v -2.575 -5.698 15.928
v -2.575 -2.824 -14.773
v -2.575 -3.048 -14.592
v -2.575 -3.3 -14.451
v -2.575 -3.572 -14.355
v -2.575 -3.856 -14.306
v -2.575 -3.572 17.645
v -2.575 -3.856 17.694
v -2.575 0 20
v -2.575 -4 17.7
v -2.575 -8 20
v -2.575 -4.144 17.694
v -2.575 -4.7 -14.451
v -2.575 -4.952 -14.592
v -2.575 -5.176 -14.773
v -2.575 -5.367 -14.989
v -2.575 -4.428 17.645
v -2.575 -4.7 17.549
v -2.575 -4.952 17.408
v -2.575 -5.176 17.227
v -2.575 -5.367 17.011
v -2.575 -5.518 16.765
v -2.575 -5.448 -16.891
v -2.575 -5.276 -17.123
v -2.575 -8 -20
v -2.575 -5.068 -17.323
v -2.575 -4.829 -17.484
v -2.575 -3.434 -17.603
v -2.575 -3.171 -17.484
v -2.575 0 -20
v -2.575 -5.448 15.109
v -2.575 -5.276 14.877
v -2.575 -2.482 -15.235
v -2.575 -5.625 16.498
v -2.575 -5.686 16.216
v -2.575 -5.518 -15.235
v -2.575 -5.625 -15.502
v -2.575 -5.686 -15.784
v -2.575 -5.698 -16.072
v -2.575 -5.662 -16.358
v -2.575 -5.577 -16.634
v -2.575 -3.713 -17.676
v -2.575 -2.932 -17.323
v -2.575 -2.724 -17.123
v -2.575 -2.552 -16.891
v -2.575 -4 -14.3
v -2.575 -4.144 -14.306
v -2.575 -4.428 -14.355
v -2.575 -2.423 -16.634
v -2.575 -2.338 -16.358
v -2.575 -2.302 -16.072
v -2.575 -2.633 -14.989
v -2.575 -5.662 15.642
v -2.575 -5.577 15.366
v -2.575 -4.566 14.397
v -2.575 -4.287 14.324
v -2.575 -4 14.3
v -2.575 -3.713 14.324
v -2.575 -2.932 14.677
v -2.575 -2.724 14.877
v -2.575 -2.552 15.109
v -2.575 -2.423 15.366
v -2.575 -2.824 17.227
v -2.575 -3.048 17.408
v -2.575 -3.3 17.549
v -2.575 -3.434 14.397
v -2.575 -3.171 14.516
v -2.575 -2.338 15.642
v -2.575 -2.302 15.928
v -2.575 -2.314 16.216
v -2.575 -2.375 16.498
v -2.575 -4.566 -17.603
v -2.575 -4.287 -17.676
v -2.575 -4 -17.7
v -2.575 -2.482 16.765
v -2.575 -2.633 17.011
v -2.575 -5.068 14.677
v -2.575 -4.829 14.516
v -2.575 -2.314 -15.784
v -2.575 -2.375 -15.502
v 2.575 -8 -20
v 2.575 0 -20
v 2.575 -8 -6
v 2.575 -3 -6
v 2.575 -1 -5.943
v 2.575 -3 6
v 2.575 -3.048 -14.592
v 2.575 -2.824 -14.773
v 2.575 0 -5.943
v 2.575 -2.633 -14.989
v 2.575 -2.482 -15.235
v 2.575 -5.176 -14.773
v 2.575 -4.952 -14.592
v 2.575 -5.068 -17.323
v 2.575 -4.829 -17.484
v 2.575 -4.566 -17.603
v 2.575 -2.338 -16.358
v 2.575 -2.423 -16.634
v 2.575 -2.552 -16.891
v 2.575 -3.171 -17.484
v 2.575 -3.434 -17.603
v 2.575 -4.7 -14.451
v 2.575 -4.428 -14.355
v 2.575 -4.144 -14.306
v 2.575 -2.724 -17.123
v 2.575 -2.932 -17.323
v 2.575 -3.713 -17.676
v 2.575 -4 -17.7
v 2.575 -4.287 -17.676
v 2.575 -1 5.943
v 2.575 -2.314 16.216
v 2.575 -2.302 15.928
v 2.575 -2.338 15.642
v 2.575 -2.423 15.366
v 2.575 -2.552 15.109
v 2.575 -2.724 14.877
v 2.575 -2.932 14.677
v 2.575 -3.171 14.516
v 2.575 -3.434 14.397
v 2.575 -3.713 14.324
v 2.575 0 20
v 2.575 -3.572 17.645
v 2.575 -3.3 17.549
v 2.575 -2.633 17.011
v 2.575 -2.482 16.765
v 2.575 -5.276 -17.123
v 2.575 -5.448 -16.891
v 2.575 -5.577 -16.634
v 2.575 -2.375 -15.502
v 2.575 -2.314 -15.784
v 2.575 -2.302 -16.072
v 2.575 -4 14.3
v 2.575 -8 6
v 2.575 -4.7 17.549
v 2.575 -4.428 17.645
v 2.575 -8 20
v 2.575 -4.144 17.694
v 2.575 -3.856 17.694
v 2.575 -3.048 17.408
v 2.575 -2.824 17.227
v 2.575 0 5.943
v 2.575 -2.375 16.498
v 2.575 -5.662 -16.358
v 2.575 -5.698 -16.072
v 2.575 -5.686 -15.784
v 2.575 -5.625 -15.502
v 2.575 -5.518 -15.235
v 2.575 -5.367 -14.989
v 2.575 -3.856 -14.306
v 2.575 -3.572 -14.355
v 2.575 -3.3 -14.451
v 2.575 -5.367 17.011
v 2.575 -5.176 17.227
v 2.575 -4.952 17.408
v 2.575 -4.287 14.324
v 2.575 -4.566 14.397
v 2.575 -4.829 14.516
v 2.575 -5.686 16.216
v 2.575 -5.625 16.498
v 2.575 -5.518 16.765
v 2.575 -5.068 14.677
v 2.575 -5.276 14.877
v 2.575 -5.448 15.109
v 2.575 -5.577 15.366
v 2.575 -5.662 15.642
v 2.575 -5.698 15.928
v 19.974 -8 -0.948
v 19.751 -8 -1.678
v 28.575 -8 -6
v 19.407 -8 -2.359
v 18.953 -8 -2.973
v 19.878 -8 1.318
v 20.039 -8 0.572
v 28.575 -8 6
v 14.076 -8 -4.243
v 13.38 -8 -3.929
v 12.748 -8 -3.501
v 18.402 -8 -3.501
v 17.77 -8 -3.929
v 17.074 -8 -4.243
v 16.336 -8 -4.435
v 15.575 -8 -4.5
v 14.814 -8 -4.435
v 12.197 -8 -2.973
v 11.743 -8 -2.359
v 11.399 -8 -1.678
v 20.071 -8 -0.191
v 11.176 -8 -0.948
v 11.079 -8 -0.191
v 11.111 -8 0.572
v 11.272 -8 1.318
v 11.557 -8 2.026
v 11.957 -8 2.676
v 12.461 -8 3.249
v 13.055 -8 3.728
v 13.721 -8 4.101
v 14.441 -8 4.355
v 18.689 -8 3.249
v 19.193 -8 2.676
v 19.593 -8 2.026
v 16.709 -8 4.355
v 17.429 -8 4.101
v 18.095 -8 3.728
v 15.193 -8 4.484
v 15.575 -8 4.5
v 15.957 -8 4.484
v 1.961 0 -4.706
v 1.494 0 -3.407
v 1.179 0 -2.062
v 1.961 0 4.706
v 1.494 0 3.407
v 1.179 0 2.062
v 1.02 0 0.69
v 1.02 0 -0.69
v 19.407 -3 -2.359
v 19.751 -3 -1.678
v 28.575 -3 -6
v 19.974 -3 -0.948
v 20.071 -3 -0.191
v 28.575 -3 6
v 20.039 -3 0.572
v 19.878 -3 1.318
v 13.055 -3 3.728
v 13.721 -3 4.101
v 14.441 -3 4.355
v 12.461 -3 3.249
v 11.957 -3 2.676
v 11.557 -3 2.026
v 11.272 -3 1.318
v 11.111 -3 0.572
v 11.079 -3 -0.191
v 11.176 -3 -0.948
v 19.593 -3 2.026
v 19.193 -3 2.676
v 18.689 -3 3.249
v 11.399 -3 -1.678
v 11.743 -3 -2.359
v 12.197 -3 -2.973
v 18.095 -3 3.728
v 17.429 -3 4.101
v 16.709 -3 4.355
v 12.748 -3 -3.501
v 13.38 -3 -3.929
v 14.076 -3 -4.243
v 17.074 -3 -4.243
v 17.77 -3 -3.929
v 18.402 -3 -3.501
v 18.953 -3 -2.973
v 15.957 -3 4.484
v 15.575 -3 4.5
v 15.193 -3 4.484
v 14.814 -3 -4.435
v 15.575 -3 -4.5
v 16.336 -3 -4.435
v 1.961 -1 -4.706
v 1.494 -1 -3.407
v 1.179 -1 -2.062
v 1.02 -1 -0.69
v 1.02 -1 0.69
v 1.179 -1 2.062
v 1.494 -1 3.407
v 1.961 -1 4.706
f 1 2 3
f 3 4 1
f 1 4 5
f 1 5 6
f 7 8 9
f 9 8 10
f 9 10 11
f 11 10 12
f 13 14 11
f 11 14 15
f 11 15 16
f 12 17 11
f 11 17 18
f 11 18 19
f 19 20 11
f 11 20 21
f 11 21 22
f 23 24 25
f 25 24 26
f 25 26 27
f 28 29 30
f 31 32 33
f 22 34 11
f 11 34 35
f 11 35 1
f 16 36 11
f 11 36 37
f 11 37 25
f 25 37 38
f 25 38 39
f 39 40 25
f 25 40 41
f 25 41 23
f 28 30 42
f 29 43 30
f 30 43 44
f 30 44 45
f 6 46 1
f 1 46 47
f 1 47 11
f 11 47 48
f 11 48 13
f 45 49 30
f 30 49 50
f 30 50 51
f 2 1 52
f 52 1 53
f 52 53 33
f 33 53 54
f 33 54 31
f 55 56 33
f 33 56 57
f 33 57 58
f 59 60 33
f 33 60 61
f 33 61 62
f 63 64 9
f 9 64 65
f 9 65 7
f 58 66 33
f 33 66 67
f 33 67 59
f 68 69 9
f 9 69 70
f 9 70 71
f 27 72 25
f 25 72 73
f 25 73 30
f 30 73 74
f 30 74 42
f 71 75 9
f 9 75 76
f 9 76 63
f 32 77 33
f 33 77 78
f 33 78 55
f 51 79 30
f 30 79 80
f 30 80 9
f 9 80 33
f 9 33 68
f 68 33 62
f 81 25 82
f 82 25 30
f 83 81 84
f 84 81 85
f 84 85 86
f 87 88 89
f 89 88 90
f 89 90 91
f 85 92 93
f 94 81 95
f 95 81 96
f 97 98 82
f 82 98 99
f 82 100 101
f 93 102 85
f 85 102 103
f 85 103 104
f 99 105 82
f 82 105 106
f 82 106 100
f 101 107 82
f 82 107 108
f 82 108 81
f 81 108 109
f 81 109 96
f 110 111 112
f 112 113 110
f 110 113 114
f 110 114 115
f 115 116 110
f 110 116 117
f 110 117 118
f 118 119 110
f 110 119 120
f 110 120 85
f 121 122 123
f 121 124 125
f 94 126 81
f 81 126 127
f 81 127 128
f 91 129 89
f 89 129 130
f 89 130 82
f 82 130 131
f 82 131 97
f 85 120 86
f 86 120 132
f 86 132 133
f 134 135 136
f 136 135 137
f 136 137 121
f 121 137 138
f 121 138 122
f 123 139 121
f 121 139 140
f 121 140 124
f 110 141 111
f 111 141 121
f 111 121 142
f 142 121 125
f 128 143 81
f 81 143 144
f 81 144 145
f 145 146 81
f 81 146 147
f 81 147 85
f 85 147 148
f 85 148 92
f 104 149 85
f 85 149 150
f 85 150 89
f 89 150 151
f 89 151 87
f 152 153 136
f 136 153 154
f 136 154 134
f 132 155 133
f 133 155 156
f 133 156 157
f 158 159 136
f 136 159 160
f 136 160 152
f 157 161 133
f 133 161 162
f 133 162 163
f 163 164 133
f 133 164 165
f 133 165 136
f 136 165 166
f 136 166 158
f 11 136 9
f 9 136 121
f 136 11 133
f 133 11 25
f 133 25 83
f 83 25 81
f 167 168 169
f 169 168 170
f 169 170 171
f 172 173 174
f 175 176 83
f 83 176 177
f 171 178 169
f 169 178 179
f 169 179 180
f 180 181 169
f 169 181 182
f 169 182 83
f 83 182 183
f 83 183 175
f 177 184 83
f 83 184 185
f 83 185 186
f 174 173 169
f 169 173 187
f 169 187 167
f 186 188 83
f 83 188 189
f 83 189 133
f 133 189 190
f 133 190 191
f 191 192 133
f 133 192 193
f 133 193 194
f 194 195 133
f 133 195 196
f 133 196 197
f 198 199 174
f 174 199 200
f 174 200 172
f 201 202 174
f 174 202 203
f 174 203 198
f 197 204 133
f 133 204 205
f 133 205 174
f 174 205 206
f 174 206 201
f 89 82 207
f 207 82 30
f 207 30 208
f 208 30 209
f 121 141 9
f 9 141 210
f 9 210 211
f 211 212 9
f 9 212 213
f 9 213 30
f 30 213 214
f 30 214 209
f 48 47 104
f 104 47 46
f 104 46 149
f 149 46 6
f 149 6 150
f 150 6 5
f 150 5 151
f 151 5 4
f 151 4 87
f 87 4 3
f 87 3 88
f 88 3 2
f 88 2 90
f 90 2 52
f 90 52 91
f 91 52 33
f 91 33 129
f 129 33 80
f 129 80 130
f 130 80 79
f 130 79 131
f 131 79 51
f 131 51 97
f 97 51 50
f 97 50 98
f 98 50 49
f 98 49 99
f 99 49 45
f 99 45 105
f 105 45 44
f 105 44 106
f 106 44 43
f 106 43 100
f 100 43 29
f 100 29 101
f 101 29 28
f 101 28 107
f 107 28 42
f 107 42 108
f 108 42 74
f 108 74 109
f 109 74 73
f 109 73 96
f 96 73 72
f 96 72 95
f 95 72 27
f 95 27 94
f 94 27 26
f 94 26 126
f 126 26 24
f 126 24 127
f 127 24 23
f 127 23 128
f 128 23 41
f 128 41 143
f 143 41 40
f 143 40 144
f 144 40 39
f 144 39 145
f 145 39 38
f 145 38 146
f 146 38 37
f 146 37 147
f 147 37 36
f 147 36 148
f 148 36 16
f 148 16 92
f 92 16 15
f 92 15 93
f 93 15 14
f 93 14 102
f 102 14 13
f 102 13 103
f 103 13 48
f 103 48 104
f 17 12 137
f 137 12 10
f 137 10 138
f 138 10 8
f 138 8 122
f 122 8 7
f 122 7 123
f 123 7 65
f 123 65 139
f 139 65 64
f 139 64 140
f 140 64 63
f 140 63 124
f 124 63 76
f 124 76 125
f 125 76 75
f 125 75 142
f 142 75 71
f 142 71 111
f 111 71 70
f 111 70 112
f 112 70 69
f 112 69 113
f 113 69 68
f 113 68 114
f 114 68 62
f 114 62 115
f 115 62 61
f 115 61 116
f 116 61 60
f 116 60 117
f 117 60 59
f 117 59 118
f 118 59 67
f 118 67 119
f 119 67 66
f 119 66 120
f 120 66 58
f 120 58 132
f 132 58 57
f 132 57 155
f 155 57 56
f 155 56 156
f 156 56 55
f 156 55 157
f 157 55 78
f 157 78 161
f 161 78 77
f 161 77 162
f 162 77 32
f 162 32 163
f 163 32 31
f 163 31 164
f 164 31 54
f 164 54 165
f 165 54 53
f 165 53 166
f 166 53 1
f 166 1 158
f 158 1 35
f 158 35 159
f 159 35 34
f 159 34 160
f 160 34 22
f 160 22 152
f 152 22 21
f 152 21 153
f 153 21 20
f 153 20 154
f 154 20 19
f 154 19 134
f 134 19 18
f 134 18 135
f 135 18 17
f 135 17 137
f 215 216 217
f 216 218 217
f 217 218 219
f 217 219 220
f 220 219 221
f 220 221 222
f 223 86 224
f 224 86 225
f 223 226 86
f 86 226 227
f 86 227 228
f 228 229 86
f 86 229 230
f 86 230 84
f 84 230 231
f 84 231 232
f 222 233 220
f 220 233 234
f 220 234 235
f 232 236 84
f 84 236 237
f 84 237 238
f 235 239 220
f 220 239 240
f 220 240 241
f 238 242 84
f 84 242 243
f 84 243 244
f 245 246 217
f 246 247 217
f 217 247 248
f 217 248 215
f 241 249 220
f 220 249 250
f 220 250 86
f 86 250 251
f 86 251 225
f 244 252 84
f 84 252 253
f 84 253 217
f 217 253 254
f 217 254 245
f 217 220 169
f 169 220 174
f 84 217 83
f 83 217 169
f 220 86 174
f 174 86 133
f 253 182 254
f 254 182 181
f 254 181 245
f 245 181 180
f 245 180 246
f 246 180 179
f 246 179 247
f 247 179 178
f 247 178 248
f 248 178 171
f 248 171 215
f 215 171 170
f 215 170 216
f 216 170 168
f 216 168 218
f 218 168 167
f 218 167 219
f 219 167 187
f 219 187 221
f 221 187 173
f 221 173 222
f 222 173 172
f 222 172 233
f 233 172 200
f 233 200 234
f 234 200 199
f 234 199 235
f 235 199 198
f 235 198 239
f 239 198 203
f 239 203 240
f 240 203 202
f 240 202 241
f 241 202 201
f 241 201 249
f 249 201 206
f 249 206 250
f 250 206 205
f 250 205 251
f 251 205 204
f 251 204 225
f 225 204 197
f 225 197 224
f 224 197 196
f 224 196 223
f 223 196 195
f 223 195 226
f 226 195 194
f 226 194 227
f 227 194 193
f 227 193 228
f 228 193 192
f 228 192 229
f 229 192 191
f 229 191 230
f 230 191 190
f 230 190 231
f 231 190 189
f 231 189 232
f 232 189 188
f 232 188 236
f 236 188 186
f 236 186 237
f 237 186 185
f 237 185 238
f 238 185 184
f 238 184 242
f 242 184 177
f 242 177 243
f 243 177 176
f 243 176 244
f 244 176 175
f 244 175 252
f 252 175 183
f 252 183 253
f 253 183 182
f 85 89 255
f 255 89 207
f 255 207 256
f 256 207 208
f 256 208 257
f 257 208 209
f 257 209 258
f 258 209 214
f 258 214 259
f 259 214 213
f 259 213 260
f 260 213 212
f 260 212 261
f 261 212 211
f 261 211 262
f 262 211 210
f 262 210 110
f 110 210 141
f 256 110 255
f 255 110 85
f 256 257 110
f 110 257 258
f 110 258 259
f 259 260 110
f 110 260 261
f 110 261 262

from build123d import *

# Parameters (mm, degrees)
CROQUIS1_W              = 5.15
CROQUIS1_H              = 40
SALIENTE_EXTRUIR1_DEPTH = 8
CROQUIS2_R              = 1.7
CORTAR_EXTRUIR1_DEPTH   = 11
CROQUIS3_W              = 26
CROQUIS3_H              = 12
CROQUIS3_R              = 4.5
SALIENTE_EXTRUIR2_DEPTH = 5
CROQUIS4_R              = 12
CORTAR_EXTRUIR2_DEPTH   = 1


with BuildPart() as part:
    # Croquis1 → Saliente-Extruir1 (new body)
    with BuildSketch(Plane(origin=(0, 0, 0), x_dir=(1, 0, 0), z_dir=(0, 1, 0))):
        Rectangle(CROQUIS1_W, CROQUIS1_H)
    extrude(amount=-SALIENTE_EXTRUIR1_DEPTH)

    # Croquis2 → Cortar-Extruir1 (cut)
    with BuildSketch(Plane(origin=(2.575, 0, 0), x_dir=(0, 0, -1), z_dir=(1, 0, 0))):
        with Locations((-16, -4)):
            Circle(CROQUIS2_R)
        with Locations((16, -4)):
            Circle(CROQUIS2_R)
    extrude(amount=-CORTAR_EXTRUIR1_DEPTH, mode=Mode.SUBTRACT)

    # Croquis3 → Saliente-Extruir2 (add)
    with BuildSketch(Plane(origin=(0, -8, 0), x_dir=(1, 0, 0), z_dir=(0, 1, 0))):
        with Locations((15.575, 0)):
            Rectangle(CROQUIS3_W, CROQUIS3_H)
        with Locations((15.575, 0)):
            Circle(CROQUIS3_R, mode=Mode.SUBTRACT)
    extrude(amount=SALIENTE_EXTRUIR2_DEPTH)

    # Croquis4 → Cortar-Extruir2 (cut)
    with BuildSketch(Plane(origin=(0, 0, 0), x_dir=(1, 0, 0), z_dir=(0, 1, 0))):
        with Locations((13, 0)):
            Circle(CROQUIS4_R)
    extrude(amount=-CORTAR_EXTRUIR2_DEPTH, mode=Mode.SUBTRACT)


solid = part.part
